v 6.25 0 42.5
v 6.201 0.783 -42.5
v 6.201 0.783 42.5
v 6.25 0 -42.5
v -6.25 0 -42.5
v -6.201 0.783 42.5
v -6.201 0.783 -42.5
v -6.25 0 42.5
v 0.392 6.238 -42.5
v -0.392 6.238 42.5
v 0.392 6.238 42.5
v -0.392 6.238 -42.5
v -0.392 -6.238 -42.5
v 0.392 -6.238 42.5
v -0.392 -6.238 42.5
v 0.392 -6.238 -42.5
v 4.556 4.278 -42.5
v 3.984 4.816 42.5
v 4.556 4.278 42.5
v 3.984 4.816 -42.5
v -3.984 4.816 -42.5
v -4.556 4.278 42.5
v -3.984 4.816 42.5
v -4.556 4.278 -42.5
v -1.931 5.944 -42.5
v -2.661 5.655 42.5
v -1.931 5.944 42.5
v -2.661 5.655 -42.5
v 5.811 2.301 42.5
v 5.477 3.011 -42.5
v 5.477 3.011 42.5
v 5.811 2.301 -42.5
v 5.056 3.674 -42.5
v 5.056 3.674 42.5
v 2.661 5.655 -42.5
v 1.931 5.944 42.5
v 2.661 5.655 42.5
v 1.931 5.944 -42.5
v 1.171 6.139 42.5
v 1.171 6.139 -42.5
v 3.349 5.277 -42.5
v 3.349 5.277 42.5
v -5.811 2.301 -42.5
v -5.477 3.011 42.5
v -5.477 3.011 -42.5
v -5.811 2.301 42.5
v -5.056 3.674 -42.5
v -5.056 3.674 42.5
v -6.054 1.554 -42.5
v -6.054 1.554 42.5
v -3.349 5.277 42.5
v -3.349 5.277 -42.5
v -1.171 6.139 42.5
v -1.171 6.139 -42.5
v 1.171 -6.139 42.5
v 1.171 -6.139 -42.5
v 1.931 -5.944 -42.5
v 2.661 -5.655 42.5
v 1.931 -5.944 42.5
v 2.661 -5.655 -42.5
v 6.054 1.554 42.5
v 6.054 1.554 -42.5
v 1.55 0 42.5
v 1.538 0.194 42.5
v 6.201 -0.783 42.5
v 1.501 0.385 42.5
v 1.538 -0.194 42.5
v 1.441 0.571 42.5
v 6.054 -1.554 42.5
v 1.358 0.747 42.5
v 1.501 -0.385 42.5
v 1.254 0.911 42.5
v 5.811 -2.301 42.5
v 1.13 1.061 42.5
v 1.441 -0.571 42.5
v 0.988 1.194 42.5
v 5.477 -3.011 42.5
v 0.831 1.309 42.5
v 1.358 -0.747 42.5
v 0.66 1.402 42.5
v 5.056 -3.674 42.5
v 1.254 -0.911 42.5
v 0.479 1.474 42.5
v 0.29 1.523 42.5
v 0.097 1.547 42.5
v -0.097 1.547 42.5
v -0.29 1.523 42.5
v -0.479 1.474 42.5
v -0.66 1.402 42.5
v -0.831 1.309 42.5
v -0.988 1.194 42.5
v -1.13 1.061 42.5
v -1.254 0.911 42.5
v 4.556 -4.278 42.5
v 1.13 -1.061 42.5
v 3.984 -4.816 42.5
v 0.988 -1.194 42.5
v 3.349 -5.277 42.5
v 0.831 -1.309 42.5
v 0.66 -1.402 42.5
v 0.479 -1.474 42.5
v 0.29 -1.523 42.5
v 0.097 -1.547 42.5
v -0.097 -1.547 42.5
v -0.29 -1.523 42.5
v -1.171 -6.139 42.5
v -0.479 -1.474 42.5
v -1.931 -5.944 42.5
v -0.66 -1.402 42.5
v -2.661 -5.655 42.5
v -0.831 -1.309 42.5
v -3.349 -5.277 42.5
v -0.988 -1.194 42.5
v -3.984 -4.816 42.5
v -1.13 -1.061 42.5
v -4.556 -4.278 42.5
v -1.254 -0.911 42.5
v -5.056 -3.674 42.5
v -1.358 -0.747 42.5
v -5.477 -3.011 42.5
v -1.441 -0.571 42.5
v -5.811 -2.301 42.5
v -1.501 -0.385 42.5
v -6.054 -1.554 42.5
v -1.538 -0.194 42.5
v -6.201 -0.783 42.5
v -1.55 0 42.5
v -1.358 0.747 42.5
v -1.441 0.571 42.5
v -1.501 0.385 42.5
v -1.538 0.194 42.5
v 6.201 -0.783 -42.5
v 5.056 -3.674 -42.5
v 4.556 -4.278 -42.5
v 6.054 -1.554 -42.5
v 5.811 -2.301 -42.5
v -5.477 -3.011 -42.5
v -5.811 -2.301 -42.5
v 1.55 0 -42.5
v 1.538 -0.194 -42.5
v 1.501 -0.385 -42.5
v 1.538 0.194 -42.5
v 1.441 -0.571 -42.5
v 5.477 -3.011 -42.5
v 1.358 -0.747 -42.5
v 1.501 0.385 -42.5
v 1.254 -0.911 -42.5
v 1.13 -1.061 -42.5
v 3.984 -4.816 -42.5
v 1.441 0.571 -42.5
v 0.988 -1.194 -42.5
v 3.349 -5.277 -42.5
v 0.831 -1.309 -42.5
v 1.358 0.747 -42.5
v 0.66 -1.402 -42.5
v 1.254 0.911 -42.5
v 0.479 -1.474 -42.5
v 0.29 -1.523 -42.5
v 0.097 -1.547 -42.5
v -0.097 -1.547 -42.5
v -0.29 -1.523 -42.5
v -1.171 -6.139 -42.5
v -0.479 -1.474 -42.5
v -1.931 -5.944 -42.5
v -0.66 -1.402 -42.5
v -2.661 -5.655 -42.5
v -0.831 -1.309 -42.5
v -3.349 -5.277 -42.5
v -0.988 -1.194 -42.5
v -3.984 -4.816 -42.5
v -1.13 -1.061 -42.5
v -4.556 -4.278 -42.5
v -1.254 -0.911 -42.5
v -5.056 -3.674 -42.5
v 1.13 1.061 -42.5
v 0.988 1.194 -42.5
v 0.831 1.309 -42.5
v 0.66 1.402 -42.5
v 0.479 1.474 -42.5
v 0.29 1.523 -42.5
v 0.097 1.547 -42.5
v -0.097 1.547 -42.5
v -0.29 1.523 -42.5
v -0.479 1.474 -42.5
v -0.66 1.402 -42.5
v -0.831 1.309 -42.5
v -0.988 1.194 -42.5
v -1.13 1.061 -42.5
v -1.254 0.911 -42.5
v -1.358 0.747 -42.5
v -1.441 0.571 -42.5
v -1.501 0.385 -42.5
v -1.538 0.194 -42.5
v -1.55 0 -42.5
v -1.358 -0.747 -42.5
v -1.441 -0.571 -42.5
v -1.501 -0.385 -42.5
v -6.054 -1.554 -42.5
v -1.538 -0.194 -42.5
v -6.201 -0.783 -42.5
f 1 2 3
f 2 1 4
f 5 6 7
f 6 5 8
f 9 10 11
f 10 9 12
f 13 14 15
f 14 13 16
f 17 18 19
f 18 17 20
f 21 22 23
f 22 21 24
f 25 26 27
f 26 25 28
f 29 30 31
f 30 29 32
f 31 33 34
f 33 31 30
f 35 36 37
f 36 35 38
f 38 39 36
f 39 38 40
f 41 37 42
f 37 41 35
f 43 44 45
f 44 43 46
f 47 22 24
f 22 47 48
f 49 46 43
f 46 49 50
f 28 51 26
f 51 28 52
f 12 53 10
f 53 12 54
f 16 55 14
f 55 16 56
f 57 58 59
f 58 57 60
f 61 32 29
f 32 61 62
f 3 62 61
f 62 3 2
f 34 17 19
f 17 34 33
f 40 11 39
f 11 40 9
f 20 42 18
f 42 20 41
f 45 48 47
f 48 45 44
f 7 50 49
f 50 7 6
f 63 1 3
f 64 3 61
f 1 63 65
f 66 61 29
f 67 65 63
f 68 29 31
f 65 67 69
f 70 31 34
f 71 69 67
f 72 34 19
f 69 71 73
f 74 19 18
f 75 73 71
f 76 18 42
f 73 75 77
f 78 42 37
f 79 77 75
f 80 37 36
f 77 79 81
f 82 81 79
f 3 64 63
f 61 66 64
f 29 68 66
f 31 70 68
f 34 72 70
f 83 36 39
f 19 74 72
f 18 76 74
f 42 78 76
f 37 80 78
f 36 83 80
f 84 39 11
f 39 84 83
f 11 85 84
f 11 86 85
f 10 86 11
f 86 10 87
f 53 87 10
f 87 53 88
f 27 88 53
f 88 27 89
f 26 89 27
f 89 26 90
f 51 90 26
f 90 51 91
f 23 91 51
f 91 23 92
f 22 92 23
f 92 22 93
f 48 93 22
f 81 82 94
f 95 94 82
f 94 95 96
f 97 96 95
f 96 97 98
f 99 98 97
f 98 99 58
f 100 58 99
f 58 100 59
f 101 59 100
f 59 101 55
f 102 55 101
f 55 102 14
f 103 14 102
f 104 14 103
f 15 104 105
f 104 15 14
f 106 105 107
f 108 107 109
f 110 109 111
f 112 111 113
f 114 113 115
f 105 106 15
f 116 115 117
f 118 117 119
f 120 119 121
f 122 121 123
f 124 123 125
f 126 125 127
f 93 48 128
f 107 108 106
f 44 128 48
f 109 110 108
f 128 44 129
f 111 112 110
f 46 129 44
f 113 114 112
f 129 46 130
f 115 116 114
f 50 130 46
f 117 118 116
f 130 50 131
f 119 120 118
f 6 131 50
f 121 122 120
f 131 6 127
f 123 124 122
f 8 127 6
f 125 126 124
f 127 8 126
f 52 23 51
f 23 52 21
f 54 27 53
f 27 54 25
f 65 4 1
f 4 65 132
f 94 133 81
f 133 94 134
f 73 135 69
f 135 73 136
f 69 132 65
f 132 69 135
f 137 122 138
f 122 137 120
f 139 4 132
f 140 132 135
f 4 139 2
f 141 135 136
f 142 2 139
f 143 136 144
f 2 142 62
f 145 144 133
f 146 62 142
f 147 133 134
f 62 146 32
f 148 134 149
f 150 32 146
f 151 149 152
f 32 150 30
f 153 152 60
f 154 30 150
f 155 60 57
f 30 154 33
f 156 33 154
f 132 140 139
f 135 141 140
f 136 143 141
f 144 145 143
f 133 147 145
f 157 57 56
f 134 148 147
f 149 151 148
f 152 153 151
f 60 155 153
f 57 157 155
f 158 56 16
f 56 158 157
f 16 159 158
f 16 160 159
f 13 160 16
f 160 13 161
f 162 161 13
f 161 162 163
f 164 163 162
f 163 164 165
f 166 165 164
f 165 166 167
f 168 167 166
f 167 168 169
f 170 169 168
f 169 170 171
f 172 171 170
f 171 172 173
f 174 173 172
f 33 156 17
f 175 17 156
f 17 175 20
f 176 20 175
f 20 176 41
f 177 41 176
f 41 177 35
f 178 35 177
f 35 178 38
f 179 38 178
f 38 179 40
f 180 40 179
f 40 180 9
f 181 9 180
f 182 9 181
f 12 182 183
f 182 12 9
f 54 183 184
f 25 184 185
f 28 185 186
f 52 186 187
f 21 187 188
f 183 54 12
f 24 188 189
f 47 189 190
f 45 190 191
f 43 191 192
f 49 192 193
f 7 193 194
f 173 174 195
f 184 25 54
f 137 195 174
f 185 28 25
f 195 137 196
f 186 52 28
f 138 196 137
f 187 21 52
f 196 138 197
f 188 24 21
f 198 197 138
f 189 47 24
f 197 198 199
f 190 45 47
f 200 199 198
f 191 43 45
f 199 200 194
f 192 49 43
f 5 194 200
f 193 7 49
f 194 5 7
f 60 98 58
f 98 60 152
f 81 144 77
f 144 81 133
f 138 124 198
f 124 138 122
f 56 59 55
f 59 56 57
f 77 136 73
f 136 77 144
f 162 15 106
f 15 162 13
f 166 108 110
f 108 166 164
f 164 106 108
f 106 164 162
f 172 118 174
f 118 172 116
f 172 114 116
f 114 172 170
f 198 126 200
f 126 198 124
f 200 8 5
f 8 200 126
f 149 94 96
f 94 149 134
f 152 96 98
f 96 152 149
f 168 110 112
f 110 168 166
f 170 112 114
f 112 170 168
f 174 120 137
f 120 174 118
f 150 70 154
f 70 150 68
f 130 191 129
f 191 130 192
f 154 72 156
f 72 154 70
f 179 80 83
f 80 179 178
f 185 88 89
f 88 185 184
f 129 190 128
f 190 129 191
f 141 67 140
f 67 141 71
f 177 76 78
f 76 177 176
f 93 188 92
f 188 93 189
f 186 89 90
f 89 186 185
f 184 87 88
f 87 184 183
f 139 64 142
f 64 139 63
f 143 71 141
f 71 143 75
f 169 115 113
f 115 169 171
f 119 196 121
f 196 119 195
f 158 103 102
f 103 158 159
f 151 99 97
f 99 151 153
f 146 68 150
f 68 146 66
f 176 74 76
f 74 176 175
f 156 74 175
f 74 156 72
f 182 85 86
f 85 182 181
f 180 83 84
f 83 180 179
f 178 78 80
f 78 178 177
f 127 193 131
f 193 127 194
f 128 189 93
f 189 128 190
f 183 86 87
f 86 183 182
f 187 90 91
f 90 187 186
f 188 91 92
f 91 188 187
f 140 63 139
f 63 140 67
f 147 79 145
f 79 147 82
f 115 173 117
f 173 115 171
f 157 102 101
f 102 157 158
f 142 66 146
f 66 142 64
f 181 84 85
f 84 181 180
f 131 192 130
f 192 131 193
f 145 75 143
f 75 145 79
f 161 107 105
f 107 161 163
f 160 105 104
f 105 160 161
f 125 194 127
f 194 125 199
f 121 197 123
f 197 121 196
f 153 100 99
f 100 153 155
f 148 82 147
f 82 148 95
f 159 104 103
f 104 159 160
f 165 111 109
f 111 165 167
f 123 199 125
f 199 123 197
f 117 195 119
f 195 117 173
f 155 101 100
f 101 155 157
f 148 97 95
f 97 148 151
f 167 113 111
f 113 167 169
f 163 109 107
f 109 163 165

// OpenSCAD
$fn = 50;


difference() {
	union() {
		translate(v = [0, 0, -42.5000000000]) {
			cylinder(h = 85, r = 6.2500000000);
		}
	}
	union() {
		translate(v = [0, 0, -100.0000000000]) {
			cylinder(h = 200, r = 1.5500000000);
		}
	}
}
